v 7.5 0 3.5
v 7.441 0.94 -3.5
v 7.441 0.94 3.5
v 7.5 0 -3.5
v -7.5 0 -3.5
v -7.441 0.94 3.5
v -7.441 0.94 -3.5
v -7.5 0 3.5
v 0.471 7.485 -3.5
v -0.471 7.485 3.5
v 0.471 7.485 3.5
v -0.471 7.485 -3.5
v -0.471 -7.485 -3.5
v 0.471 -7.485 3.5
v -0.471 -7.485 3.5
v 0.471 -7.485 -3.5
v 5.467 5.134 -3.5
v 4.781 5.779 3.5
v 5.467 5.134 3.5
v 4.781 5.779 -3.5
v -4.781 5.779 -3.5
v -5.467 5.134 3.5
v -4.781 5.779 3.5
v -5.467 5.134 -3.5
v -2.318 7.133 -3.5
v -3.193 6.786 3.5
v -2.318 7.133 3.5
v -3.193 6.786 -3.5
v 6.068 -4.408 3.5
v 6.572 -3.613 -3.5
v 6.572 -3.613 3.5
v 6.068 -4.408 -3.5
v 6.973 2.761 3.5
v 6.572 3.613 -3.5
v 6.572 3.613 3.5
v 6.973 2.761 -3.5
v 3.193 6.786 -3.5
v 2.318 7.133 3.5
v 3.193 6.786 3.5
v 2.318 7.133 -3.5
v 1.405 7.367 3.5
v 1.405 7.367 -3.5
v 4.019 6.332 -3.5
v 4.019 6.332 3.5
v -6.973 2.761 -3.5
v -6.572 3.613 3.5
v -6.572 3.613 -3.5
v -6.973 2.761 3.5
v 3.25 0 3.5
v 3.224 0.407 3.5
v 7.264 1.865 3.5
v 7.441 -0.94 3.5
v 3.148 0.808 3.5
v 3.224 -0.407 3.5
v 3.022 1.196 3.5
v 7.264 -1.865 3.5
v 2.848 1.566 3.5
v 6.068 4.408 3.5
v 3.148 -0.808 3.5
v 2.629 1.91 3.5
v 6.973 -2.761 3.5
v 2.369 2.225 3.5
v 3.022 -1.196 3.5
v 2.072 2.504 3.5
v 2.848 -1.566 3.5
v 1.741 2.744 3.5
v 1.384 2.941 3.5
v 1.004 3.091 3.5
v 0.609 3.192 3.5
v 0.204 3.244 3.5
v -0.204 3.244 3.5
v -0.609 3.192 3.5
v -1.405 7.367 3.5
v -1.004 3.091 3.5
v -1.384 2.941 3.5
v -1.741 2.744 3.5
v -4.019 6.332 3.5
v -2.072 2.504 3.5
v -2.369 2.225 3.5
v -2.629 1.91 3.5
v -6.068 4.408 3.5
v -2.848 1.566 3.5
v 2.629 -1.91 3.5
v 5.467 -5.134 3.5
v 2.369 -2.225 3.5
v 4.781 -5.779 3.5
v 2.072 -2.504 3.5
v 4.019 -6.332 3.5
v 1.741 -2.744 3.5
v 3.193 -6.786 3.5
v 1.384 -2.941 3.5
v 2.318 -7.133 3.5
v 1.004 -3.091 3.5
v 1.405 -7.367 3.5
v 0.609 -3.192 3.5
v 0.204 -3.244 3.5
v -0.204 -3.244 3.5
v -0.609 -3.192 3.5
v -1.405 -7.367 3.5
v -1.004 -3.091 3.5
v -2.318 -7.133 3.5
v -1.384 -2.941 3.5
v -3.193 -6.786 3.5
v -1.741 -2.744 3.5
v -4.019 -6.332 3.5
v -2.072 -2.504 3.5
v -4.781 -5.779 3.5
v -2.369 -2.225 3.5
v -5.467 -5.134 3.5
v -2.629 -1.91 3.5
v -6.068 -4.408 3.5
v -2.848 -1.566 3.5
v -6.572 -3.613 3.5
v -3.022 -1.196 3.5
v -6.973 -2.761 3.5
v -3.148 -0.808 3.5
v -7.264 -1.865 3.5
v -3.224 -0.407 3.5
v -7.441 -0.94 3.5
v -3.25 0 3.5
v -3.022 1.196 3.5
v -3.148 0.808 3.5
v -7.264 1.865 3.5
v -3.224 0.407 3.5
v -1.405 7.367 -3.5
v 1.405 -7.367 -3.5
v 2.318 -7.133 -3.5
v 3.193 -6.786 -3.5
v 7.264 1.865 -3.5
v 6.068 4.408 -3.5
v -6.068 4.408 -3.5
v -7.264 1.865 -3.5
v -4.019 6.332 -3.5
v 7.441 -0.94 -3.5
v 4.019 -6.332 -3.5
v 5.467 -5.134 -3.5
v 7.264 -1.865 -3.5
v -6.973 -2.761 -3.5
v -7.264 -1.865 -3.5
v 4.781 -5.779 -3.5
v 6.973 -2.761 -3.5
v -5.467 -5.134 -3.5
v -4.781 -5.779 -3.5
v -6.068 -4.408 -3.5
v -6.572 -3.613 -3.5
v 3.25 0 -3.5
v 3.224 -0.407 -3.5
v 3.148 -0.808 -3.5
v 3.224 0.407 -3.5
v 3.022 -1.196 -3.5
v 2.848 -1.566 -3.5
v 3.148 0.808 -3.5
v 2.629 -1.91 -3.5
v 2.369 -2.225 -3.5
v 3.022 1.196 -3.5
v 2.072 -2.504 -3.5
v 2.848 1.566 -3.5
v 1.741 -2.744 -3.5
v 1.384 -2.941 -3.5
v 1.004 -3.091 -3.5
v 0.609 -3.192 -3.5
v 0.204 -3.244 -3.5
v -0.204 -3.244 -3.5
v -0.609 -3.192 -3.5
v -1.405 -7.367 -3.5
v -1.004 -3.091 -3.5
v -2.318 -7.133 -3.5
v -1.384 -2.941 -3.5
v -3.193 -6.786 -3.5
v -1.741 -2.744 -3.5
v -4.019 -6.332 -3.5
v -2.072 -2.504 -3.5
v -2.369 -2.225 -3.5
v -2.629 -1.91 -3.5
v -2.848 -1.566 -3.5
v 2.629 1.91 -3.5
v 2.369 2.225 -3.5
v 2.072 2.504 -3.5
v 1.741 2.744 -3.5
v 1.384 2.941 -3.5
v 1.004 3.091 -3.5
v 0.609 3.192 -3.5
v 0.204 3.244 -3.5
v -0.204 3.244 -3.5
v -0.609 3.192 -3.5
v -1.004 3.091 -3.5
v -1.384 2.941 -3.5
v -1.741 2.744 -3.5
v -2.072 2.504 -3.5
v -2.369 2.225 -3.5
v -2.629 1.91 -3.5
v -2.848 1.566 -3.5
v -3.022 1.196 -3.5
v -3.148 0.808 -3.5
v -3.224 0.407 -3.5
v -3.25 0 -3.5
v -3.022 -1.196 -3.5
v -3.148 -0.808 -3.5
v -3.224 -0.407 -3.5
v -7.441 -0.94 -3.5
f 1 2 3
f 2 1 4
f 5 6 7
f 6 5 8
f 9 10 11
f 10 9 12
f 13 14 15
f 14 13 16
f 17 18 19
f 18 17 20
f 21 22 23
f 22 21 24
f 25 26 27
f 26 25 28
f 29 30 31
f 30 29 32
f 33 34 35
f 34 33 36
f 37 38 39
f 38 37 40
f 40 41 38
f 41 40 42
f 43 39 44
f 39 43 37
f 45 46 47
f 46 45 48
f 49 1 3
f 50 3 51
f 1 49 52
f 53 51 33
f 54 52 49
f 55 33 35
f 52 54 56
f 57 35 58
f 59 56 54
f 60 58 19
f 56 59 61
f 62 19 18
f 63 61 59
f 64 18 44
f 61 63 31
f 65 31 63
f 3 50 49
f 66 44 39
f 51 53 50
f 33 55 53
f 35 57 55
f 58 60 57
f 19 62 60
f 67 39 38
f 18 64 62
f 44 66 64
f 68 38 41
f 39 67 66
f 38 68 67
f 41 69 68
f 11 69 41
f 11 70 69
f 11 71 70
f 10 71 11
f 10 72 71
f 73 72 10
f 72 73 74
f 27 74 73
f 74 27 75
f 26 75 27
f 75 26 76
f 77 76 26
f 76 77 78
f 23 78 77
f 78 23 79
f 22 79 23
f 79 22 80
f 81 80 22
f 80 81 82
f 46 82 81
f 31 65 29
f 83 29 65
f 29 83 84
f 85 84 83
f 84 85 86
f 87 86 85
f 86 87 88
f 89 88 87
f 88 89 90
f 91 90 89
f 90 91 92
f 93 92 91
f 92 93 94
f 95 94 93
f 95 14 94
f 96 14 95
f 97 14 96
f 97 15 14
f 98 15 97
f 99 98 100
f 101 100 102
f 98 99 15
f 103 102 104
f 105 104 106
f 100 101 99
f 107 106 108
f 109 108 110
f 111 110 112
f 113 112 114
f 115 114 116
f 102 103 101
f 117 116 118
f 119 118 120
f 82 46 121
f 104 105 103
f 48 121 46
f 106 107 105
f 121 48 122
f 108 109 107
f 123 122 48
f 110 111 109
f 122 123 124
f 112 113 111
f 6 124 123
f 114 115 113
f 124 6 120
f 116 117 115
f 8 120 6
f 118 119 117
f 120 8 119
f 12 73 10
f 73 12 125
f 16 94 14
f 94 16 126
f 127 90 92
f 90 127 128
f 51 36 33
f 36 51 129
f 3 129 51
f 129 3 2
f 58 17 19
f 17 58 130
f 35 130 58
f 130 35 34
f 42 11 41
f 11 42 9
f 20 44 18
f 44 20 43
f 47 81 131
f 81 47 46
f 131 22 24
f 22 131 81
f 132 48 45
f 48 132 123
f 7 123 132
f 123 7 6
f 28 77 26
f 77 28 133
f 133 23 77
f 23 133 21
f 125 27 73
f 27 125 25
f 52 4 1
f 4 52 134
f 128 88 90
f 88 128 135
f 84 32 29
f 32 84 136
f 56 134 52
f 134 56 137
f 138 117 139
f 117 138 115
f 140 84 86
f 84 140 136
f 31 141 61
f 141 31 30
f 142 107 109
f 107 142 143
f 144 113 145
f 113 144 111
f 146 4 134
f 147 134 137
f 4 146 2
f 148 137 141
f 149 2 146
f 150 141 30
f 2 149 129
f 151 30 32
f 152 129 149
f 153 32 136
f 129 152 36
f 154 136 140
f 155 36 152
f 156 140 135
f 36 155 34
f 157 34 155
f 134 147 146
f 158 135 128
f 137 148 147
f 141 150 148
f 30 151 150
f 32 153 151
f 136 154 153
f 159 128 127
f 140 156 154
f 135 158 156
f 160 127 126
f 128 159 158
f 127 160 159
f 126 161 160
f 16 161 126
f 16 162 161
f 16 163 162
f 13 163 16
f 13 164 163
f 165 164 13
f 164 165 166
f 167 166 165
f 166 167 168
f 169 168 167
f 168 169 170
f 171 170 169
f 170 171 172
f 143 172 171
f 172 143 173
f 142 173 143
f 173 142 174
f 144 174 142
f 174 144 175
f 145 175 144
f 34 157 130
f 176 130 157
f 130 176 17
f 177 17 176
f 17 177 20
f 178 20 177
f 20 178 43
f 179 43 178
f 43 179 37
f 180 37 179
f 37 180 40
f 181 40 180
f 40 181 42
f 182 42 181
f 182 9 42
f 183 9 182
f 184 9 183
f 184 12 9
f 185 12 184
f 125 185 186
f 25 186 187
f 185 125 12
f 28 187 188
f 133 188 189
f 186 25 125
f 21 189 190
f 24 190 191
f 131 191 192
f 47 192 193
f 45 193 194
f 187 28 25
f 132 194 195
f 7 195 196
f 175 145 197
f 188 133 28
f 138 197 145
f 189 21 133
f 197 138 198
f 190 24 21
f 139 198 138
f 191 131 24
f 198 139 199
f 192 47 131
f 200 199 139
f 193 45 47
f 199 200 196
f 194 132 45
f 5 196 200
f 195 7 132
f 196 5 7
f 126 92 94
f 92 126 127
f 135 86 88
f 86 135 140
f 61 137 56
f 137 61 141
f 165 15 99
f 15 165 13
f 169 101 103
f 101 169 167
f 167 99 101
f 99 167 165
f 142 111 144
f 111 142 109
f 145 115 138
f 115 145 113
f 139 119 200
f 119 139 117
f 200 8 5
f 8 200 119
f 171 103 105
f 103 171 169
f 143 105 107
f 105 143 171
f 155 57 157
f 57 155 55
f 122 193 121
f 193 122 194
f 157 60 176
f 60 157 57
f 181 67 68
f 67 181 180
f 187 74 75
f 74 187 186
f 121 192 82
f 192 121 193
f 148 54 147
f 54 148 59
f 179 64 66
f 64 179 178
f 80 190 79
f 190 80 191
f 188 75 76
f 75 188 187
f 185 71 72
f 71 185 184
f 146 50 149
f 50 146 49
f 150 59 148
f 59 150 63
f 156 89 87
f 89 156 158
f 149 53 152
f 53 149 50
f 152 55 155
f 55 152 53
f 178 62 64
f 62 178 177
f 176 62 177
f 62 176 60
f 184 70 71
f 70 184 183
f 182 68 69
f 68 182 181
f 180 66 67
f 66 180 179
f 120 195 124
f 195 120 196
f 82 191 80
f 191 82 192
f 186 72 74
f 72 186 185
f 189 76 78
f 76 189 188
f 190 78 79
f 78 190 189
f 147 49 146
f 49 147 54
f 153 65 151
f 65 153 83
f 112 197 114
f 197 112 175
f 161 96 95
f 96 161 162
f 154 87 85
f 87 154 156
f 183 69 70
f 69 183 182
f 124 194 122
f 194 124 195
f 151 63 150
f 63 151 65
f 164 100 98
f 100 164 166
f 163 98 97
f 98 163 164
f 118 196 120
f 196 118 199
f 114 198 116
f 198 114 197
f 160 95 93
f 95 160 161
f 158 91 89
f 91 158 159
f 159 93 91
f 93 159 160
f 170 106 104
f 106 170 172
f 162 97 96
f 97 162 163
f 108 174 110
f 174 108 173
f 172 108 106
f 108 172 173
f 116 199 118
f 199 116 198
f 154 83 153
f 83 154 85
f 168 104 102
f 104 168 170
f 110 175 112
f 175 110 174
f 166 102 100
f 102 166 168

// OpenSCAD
$fn = 50;


difference() {
	union() {
		translate(v = [0, 0, -3.5000000000]) {
			cylinder(h = 7, r = 7.5000000000);
		}
	}
	union() {
		translate(v = [0, 0, -100.0000000000]) {
			cylinder(h = 200, r = 3.2500000000);
		}
	}
}
